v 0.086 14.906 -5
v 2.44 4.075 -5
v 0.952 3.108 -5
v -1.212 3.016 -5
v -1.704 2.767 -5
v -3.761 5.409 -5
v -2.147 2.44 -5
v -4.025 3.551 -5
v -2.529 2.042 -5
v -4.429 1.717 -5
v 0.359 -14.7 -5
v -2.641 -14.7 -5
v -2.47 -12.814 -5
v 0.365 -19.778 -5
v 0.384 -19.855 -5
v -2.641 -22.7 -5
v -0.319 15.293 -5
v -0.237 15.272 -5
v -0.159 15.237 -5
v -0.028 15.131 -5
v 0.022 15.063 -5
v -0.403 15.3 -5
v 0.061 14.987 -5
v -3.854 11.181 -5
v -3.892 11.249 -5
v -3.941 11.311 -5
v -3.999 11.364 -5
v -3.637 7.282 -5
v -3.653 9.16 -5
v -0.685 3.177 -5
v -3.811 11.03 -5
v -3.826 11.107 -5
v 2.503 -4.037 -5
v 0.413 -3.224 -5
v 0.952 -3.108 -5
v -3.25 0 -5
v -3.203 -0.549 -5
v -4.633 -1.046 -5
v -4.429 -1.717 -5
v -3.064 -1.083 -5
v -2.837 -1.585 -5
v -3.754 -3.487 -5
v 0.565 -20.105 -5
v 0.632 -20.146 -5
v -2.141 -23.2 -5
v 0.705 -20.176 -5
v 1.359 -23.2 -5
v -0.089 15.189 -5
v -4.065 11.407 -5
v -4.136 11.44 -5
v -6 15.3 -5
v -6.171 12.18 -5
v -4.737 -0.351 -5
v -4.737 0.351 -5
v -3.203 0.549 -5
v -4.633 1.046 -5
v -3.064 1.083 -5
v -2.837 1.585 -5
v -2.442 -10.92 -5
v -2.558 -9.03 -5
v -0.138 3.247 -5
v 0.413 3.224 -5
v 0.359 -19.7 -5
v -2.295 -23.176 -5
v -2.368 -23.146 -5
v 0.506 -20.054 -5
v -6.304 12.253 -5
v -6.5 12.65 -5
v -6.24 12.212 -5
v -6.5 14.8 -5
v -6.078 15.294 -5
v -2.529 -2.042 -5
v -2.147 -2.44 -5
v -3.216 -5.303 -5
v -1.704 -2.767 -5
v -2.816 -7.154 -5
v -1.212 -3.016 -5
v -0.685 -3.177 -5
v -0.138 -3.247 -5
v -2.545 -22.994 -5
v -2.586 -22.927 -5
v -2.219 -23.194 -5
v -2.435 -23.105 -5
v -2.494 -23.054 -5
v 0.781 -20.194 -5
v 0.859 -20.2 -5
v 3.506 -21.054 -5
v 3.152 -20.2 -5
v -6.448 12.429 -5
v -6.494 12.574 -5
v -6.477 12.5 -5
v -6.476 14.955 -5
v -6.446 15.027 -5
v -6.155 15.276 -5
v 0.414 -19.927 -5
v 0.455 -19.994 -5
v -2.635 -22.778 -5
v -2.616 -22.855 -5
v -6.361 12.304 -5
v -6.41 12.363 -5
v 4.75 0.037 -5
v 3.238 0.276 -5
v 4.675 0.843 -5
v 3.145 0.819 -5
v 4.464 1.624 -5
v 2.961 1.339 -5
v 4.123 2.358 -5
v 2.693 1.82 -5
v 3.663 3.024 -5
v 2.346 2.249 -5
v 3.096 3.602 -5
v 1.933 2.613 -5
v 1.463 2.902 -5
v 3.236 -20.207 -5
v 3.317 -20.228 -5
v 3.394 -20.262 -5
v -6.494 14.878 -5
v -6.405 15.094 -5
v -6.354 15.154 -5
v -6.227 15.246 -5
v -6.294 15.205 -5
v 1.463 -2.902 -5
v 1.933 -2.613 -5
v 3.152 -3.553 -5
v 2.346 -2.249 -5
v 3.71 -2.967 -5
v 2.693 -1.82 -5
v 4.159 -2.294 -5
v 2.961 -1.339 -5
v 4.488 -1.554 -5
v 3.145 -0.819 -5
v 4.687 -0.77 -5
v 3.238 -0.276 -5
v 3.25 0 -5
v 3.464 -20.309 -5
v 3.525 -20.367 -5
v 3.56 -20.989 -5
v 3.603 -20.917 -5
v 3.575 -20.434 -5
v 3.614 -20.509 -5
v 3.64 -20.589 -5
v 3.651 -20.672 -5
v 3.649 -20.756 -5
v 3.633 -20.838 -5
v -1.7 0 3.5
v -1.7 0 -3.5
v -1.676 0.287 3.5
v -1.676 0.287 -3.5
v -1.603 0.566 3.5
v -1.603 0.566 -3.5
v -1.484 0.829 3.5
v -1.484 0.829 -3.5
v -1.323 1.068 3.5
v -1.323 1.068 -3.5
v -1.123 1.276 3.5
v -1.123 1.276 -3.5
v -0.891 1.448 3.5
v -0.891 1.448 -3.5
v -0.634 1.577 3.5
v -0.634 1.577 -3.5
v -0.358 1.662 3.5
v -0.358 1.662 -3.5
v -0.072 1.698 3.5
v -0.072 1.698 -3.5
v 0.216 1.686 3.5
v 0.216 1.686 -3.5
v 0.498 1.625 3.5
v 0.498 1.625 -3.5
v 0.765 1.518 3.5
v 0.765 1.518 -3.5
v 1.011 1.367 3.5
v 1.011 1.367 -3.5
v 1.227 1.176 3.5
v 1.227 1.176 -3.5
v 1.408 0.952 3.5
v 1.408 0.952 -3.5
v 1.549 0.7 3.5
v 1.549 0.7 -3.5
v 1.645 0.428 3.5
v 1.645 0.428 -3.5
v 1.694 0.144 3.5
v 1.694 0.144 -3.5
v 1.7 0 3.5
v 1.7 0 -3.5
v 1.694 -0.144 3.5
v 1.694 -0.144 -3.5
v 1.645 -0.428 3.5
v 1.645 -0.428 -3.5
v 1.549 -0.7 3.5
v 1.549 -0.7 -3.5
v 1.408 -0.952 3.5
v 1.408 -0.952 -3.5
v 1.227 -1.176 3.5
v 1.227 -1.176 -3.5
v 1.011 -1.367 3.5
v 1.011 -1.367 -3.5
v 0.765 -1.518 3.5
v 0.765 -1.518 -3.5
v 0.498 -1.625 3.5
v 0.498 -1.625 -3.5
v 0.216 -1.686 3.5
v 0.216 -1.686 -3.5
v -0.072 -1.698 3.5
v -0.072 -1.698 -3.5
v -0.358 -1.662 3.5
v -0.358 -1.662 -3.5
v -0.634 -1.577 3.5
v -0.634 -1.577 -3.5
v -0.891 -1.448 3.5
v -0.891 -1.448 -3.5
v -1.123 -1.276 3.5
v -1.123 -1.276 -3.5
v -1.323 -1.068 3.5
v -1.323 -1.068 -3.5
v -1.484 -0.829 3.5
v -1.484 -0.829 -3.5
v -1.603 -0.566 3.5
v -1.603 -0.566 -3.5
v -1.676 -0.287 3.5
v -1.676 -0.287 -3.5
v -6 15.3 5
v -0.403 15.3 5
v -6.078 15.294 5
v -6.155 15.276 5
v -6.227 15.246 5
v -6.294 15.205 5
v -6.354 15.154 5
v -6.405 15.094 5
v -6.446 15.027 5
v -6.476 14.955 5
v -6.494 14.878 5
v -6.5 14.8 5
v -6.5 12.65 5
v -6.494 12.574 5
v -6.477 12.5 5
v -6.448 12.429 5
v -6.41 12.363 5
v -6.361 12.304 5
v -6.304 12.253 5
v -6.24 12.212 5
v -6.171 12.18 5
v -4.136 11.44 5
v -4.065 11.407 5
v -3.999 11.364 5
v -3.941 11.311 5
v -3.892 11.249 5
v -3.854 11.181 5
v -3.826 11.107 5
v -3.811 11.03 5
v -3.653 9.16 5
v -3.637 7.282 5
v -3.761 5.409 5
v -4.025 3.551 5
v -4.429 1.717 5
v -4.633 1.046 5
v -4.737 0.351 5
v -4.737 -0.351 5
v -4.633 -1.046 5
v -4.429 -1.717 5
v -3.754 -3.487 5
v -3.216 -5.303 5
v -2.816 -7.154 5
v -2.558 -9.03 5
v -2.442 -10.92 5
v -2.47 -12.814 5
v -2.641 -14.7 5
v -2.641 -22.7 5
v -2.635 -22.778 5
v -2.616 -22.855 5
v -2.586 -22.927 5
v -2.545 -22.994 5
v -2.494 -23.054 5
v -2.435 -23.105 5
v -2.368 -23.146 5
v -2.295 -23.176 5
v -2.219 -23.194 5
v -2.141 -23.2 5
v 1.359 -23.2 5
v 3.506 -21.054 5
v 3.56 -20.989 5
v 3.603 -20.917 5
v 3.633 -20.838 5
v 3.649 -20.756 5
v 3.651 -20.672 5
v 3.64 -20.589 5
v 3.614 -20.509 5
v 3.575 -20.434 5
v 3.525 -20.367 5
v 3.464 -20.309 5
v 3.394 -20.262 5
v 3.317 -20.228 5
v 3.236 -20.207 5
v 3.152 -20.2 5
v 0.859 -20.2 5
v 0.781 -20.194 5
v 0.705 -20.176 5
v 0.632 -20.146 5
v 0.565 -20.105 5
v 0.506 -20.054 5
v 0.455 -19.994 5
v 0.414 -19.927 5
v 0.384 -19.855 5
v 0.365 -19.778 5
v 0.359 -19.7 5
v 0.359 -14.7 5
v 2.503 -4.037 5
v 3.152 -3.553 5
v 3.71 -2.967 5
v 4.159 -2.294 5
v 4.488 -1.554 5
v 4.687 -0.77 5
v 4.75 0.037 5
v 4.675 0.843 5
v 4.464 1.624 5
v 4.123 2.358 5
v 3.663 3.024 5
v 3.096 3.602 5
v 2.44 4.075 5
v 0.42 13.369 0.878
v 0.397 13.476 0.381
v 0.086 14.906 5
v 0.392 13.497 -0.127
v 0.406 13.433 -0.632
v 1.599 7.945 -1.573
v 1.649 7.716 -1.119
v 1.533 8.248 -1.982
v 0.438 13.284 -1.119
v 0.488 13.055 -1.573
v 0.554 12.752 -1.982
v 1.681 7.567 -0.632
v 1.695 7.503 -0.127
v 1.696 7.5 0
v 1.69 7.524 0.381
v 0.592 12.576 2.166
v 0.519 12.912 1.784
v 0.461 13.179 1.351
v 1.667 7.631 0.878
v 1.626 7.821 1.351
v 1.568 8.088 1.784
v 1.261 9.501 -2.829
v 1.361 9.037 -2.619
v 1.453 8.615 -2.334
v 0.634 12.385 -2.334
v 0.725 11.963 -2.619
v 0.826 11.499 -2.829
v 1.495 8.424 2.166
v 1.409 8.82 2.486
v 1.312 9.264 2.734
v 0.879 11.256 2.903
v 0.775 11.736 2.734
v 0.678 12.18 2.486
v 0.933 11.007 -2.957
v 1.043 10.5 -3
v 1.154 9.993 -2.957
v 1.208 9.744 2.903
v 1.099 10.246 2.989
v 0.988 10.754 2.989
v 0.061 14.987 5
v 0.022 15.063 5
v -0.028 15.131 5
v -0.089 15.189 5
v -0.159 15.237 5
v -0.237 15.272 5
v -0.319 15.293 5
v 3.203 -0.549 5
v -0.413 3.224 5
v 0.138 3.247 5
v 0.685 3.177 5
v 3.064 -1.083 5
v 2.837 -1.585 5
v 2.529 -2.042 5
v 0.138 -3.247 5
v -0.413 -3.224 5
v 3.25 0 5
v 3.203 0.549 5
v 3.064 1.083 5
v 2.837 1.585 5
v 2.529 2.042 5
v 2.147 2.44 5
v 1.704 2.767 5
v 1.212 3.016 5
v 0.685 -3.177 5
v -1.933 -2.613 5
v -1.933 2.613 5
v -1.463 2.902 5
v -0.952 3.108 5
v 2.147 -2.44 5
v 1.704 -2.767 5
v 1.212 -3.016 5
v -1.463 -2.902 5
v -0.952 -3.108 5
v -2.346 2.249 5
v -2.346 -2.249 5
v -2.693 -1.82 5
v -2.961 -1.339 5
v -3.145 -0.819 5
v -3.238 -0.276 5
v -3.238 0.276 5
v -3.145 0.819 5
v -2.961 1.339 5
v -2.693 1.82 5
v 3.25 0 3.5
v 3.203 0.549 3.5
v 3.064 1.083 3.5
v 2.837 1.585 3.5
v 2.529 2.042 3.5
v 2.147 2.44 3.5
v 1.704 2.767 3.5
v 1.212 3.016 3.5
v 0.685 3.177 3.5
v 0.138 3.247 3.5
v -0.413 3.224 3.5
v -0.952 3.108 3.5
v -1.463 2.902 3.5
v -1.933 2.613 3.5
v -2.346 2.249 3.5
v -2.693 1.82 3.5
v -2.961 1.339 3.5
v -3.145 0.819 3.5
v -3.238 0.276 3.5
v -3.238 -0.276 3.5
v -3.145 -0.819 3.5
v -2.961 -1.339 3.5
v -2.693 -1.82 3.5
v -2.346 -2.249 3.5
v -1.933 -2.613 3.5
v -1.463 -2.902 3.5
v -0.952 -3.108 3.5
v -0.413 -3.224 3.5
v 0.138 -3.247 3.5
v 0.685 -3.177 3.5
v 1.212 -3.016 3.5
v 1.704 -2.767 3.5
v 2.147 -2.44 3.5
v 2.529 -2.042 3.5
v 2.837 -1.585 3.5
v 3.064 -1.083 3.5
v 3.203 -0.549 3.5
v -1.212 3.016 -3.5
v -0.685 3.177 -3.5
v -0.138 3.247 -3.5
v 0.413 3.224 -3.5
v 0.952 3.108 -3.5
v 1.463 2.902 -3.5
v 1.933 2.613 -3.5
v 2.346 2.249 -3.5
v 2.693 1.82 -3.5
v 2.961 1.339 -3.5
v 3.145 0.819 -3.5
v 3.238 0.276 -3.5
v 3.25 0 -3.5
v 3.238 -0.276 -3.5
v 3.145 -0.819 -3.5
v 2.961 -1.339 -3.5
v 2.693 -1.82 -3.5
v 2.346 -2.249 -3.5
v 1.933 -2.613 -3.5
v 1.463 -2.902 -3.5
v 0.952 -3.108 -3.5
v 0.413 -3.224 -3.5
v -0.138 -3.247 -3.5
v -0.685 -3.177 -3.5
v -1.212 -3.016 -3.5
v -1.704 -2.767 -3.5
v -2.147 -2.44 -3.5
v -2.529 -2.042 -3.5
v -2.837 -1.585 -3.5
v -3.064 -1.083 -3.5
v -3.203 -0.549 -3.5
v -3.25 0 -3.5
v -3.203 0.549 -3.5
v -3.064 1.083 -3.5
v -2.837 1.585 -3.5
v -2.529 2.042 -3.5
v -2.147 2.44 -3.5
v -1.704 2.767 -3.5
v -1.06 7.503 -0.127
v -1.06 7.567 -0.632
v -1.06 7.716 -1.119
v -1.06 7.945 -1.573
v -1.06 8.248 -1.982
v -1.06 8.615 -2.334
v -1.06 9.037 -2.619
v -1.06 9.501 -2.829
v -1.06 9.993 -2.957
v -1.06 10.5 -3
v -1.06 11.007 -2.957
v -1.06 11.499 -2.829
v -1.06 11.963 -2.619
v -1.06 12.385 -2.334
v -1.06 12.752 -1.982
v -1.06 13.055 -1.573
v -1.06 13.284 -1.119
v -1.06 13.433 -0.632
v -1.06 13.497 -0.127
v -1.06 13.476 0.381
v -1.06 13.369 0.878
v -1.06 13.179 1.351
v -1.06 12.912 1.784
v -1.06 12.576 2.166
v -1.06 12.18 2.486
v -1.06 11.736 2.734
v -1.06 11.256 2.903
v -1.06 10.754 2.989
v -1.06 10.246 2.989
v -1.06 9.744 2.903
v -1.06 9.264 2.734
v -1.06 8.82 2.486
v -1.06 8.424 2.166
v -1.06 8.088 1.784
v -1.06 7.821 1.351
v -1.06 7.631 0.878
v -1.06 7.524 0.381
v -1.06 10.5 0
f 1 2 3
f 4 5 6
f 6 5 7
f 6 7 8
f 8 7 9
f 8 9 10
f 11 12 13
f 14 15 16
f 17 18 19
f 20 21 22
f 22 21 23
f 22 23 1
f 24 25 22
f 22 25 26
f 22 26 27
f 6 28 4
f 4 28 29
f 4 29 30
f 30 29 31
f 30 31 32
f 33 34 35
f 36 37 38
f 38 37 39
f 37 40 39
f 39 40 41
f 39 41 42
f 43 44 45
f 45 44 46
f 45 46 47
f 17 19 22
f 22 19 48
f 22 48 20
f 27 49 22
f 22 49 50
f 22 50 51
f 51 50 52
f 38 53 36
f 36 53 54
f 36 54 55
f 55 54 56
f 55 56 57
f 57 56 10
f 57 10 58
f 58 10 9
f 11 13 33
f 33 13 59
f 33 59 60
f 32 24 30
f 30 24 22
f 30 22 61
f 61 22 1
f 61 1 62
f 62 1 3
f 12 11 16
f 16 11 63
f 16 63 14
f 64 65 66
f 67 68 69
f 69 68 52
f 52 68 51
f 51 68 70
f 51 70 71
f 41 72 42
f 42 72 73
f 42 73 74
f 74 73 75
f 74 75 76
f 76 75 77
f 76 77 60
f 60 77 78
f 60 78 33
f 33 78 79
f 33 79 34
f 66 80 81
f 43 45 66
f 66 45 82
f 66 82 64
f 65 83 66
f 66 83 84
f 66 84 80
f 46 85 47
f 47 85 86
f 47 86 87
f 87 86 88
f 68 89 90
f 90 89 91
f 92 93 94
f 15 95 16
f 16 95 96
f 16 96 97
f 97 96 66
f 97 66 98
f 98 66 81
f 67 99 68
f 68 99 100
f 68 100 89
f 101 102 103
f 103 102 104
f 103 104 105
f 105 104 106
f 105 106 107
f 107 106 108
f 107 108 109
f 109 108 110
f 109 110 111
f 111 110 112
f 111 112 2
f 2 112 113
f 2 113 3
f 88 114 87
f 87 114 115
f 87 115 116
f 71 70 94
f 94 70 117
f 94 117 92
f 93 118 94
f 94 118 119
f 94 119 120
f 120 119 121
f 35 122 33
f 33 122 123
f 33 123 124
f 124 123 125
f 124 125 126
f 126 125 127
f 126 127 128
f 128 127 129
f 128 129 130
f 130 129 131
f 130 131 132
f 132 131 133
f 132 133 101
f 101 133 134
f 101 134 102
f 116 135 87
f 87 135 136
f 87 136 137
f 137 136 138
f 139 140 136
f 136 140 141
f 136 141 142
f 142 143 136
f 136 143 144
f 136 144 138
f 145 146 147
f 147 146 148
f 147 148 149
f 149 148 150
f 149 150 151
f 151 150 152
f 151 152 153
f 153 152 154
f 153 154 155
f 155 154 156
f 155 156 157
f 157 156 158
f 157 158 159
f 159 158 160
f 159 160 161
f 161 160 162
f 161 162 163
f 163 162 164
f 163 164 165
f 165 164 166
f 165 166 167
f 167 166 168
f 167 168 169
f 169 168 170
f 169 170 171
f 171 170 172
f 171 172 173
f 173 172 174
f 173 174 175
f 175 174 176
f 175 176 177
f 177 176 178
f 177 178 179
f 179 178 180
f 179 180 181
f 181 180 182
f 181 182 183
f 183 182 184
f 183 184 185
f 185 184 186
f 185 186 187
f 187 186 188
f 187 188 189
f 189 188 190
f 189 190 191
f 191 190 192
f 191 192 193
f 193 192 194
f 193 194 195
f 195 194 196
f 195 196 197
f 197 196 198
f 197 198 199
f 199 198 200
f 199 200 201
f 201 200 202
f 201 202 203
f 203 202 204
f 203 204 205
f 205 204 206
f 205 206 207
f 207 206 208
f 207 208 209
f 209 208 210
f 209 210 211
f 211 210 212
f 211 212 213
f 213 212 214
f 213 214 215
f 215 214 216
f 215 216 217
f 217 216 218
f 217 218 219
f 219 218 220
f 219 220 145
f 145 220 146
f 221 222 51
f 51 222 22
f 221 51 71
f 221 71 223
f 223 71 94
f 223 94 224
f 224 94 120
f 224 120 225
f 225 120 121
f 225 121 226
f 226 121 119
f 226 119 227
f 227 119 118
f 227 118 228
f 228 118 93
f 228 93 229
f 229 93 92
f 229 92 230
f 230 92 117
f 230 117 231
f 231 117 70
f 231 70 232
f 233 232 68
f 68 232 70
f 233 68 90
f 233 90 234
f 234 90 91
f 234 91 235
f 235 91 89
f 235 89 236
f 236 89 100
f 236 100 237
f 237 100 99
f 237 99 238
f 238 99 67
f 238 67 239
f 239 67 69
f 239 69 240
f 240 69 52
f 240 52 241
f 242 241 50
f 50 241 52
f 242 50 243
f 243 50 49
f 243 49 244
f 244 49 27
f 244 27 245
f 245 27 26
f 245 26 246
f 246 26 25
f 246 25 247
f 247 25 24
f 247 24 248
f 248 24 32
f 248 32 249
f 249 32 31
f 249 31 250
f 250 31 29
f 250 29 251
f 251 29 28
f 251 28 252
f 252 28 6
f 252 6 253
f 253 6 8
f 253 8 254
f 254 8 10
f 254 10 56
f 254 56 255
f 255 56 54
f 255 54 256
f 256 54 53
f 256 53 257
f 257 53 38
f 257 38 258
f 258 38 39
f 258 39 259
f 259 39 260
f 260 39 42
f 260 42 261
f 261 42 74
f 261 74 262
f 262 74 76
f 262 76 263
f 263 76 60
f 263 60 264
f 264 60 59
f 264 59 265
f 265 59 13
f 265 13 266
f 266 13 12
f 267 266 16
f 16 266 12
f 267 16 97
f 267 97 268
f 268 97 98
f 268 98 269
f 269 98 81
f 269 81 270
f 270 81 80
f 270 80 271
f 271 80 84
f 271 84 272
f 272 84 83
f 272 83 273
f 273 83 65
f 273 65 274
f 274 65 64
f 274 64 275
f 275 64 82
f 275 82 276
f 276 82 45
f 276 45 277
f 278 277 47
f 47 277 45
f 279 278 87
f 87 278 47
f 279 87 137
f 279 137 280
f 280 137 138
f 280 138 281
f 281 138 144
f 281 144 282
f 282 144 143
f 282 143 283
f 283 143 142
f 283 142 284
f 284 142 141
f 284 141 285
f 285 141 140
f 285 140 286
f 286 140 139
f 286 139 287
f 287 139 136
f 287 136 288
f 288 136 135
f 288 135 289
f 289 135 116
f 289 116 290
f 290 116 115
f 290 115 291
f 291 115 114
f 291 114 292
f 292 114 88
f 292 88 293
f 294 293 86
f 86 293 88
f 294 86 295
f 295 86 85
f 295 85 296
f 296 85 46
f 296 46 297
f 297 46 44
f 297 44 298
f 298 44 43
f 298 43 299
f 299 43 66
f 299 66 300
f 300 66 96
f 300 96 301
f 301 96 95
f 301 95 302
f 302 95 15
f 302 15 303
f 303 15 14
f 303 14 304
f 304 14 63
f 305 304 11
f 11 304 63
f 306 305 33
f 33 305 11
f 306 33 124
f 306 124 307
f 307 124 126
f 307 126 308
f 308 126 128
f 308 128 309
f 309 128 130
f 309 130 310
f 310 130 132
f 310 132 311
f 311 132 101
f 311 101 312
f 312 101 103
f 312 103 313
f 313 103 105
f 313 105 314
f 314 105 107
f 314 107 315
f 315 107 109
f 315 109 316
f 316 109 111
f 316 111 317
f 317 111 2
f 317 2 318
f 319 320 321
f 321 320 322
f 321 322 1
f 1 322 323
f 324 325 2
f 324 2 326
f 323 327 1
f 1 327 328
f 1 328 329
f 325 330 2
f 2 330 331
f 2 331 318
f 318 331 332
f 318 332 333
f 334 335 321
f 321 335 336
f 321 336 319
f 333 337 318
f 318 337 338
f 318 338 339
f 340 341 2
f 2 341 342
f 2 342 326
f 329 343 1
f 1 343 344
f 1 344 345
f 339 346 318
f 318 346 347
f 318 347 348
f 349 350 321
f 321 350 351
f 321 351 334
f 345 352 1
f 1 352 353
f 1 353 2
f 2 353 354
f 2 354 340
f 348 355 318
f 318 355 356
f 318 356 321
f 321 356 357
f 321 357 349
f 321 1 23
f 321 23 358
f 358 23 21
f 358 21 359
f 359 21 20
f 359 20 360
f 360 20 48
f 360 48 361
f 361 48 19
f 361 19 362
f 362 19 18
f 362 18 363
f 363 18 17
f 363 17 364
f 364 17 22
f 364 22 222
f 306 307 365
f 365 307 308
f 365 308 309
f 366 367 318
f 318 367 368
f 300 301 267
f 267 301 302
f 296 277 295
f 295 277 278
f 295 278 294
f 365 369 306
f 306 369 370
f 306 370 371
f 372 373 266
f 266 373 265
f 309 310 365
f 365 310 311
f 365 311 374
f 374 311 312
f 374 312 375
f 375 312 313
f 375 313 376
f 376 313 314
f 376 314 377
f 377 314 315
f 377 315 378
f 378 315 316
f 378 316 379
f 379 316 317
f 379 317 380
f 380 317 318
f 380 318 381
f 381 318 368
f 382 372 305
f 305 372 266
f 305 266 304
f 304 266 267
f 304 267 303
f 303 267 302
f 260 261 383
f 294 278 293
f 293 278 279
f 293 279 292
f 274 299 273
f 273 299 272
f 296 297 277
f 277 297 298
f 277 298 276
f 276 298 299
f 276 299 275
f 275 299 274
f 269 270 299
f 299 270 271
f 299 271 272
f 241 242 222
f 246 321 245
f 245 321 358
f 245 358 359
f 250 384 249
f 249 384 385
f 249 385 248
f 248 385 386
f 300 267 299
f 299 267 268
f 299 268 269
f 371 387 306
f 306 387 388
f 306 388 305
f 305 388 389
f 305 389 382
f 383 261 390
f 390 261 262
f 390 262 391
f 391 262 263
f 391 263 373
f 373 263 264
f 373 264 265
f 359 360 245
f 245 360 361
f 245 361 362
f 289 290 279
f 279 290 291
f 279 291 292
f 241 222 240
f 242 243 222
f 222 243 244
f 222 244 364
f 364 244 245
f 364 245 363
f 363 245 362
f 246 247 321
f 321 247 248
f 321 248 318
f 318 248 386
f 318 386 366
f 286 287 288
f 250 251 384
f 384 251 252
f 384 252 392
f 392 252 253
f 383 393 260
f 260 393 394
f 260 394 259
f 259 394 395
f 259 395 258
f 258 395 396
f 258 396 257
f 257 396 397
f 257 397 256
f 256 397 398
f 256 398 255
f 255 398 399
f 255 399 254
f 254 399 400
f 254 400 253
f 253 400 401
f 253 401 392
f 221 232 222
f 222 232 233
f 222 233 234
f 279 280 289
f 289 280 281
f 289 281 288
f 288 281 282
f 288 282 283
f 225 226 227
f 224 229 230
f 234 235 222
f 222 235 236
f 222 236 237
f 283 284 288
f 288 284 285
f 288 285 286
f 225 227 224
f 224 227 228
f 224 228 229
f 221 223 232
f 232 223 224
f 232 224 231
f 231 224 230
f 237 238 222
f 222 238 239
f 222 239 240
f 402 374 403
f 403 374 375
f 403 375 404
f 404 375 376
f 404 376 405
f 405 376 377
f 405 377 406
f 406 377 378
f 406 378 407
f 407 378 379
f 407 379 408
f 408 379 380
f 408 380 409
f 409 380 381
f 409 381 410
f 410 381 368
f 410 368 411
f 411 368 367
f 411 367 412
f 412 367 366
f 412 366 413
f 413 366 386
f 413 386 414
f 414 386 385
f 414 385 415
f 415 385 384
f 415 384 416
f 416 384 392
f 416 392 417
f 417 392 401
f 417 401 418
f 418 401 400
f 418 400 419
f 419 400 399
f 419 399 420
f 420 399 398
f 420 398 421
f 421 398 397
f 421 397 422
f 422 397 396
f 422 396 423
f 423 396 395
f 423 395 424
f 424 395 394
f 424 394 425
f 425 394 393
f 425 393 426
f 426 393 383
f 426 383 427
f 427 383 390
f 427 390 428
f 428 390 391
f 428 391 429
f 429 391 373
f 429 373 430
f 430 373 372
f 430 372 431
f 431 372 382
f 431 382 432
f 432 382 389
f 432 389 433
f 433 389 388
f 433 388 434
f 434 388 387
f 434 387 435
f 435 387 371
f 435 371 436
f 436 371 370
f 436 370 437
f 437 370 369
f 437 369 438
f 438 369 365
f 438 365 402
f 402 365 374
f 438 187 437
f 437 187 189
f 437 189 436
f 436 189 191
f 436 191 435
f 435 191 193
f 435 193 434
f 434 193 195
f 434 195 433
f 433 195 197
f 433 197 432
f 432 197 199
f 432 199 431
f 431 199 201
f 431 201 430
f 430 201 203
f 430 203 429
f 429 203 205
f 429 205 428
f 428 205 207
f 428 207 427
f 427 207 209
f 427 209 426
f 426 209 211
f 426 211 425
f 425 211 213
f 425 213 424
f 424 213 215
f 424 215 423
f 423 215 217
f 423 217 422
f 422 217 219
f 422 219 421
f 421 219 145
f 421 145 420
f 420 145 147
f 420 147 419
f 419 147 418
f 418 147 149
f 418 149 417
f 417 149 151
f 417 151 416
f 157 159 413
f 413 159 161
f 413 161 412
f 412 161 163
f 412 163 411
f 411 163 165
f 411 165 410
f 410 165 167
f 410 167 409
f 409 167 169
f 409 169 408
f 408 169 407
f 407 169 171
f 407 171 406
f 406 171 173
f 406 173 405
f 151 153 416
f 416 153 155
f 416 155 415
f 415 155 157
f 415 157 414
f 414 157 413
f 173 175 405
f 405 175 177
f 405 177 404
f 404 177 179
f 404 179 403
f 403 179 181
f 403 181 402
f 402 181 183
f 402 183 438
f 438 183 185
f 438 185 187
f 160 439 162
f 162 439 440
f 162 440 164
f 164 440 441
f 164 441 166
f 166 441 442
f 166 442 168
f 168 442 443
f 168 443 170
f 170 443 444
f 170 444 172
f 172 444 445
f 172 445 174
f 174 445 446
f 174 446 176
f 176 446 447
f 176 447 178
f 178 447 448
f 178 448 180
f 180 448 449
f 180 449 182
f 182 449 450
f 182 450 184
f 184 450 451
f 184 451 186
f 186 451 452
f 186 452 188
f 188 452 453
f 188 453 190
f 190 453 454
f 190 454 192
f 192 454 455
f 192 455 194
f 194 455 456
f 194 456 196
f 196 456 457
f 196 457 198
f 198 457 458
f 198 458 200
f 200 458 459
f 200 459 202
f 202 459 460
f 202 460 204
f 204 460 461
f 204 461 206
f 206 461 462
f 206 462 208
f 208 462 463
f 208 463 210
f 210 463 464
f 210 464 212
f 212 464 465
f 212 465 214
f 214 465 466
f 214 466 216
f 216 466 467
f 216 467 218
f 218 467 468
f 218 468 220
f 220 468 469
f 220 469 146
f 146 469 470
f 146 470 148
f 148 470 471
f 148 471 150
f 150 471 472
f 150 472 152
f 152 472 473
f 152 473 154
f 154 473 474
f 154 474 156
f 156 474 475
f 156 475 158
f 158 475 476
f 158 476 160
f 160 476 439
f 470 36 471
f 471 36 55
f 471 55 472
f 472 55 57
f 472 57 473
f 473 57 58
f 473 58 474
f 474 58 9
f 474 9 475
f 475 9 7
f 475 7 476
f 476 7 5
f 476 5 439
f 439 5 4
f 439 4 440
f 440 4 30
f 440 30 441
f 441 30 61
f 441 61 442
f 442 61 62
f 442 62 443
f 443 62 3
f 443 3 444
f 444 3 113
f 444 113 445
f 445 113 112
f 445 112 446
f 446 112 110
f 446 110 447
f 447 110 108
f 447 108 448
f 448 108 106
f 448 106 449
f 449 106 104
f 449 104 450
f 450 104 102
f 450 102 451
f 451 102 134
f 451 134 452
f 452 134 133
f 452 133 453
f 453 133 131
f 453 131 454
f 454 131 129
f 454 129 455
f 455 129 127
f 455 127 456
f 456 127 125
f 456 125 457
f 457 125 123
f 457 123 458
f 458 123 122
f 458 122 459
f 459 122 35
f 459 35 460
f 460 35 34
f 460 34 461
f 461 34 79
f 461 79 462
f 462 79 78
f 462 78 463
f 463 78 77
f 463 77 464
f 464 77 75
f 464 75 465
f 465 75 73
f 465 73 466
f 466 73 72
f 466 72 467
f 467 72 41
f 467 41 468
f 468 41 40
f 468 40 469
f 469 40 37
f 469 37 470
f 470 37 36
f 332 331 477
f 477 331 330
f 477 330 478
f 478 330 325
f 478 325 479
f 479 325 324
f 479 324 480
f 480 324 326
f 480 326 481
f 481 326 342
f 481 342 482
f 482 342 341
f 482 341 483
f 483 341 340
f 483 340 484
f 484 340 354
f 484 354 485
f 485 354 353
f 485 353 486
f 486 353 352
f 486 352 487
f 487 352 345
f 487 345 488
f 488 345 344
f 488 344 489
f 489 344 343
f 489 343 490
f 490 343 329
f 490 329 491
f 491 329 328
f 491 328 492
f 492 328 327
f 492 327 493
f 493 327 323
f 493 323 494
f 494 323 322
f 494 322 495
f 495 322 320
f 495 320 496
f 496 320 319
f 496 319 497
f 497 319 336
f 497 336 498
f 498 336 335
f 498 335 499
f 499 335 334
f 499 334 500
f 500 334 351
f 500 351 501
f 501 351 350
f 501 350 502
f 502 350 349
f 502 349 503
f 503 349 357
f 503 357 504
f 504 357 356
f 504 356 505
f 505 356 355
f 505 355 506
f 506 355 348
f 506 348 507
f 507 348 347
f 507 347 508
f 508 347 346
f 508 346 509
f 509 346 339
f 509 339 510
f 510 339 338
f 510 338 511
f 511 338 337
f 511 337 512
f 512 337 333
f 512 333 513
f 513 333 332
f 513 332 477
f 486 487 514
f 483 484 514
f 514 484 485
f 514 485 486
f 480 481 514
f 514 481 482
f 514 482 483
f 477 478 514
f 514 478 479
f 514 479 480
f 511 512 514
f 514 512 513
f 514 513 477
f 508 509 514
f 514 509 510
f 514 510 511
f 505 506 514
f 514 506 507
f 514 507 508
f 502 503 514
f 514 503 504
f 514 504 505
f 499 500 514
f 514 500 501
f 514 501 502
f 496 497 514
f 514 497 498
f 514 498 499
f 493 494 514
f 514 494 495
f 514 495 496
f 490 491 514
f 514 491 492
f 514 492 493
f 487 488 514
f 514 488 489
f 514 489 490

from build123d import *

# Parameters (mm, degrees)
SKETCH_1_R          = 3.25
SKETCH_1_R_2        = 1.7
EXTRUDE_1_DEPTH     = 5
CUT_EXTRUDE_START   = 5
SKETCH_1_4_R        = 3.25
CUT_EXTRUDE_1_DEPTH = 1.5
CUT_EXTRUDE_START_2 = -5
SKETCH_1_5_R        = 3.25
CUT_EXTRUDE_2_DEPTH = 1.5
CUT_EXTRUDE_START_3 = 2.43999
SKETCH_2_R          = 3
CUT_EXTRUDE_3_DEPTH = 3.5


with BuildPart() as part:
    # Эскиз1 → Бобышка-Вытянуть1 (new, symmetric)
    # profile 1 of 4: a face of its own
    with BuildSketch(Plane.XY):
        with BuildLine():
            Line((-0.402987496, 15.3), (-6, 15.3))
            ThreePointArc((-6, 15.3), (-6.353553391, 15.153553391), (-6.5, 14.8))
            Line((-6.5, 14.8), (-6.5, 12.650103769))
            ThreePointArc((-6.5, 12.650103769), (-6.409576022, 12.363315551), (-6.171010072, 12.180257459))
            Line((-6.171010072, 12.180257459), (-4.136019248, 11.439581372))
            ThreePointArc((-4.136019248, 11.439581372), (-3.91562246, 11.280863122), (-3.810716101, 11.0303419))
            ThreePointArc((-3.810716101, 11.0303419), (-3.681235408, 6.344733002), (-4.428694025, 1.717314542))
            ThreePointArc((-4.428694025, 1.717314542), (-1.542362614, 4.492618119), (2.439992619, 4.07540624))
            Line((2.439992619, 4.07540624), (0.085601919, 14.90620915))
            ThreePointArc((0.085601919, 14.90620915), (-0.089223711, 15.189297171), (-0.402987496, 15.3))
        make_face()
    # profile 2 of 4: a face of its own
    with BuildSketch(Plane.XY):
        with BuildLine():
            ThreePointArc((4.75, 0), (4.13233983, 2.342278278), (2.439992619, 4.07540624))
            ThreePointArc((2.439992619, 4.07540624), (-1.542362614, 4.492618119), (-4.428694025, 1.717314542))
            ThreePointArc((-4.428694025, 1.717314542), (-4.75, 0), (-4.428694025, -1.717314542))
            ThreePointArc((-4.428694025, -1.717314542), (-4.378812236, -1.835465051), (-4.329537208, -1.953869895))
            ThreePointArc((-4.329537208, -1.953869895), (-1.385071911, -4.543575222), (2.503326388, -4.036812727))
            ThreePointArc((2.503326388, -4.036812727), (4.150499991, -2.309945849), (4.75, 0))
        make_face()
        Circle(SKETCH_1_R, mode=Mode.SUBTRACT)
    # profile 3 of 4: a face of its own
    with BuildSketch(Plane.XY):
        Circle(SKETCH_1_R)
        Circle(SKETCH_1_R_2, mode=Mode.SUBTRACT)
    # profile 4 of 4: a face of its own
    with BuildSketch(Plane.XY):
        with BuildLine():
            Line((0.359159672, -14.7), (2.503326388, -4.036812727))
            ThreePointArc((2.503326388, -4.036812727), (-1.385071911, -4.543575222), (-4.329537208, -1.953869895))
            ThreePointArc((-4.329537208, -1.953869895), (-2.65175784, -8.216516162), (-2.640840328, -14.7))
            Line((-2.640840328, -14.7), (-2.640840328, -22.7))
            ThreePointArc((-2.640840328, -22.7), (-2.494393719, -23.053553391), (-2.140840328, -23.2))
            Line((-2.140840328, -23.2), (1.359159672, -23.2))
            Line((1.359159672, -23.2), (3.505606281, -21.053553391))
            ThreePointArc((3.505606281, -21.053553391), (3.613992657, -20.508658284), (3.152052891, -20.2))
            Line((3.152052891, -20.2), (0.859159672, -20.2))
            ThreePointArc((0.859159672, -20.2), (0.505606281, -20.053553391), (0.359159672, -19.7))
            Line((0.359159672, -19.7), (0.359159672, -14.7))
        make_face()
    extrude(amount=EXTRUDE_1_DEPTH, both=True)

    # Эскиз1<4> → Вырез-Вытянуть1 (cut)
    with BuildSketch(Plane.XY.offset(CUT_EXTRUDE_START)):
        Circle(SKETCH_1_4_R)
    extrude(amount=-CUT_EXTRUDE_1_DEPTH, mode=Mode.SUBTRACT)

    # Эскиз1<5> → Вырез-Вытянуть2 (cut)
    with BuildSketch(Plane.XY.offset(CUT_EXTRUDE_START_2)):
        Circle(SKETCH_1_5_R)
    extrude(amount=CUT_EXTRUDE_2_DEPTH, mode=Mode.SUBTRACT)

    # Эскиз2 → Вырез-Вытянуть3 (cut)
    with BuildSketch(Plane(origin=(0, 0.681903291, 0), x_dir=(0, 0, -1), z_dir=(1, 0, 0)).offset(CUT_EXTRUDE_START_3)):
        with Locations((0, 9.818096709)):
            Circle(SKETCH_2_R)
    extrude(amount=-CUT_EXTRUDE_3_DEPTH, mode=Mode.SUBTRACT)


solid = part.part
